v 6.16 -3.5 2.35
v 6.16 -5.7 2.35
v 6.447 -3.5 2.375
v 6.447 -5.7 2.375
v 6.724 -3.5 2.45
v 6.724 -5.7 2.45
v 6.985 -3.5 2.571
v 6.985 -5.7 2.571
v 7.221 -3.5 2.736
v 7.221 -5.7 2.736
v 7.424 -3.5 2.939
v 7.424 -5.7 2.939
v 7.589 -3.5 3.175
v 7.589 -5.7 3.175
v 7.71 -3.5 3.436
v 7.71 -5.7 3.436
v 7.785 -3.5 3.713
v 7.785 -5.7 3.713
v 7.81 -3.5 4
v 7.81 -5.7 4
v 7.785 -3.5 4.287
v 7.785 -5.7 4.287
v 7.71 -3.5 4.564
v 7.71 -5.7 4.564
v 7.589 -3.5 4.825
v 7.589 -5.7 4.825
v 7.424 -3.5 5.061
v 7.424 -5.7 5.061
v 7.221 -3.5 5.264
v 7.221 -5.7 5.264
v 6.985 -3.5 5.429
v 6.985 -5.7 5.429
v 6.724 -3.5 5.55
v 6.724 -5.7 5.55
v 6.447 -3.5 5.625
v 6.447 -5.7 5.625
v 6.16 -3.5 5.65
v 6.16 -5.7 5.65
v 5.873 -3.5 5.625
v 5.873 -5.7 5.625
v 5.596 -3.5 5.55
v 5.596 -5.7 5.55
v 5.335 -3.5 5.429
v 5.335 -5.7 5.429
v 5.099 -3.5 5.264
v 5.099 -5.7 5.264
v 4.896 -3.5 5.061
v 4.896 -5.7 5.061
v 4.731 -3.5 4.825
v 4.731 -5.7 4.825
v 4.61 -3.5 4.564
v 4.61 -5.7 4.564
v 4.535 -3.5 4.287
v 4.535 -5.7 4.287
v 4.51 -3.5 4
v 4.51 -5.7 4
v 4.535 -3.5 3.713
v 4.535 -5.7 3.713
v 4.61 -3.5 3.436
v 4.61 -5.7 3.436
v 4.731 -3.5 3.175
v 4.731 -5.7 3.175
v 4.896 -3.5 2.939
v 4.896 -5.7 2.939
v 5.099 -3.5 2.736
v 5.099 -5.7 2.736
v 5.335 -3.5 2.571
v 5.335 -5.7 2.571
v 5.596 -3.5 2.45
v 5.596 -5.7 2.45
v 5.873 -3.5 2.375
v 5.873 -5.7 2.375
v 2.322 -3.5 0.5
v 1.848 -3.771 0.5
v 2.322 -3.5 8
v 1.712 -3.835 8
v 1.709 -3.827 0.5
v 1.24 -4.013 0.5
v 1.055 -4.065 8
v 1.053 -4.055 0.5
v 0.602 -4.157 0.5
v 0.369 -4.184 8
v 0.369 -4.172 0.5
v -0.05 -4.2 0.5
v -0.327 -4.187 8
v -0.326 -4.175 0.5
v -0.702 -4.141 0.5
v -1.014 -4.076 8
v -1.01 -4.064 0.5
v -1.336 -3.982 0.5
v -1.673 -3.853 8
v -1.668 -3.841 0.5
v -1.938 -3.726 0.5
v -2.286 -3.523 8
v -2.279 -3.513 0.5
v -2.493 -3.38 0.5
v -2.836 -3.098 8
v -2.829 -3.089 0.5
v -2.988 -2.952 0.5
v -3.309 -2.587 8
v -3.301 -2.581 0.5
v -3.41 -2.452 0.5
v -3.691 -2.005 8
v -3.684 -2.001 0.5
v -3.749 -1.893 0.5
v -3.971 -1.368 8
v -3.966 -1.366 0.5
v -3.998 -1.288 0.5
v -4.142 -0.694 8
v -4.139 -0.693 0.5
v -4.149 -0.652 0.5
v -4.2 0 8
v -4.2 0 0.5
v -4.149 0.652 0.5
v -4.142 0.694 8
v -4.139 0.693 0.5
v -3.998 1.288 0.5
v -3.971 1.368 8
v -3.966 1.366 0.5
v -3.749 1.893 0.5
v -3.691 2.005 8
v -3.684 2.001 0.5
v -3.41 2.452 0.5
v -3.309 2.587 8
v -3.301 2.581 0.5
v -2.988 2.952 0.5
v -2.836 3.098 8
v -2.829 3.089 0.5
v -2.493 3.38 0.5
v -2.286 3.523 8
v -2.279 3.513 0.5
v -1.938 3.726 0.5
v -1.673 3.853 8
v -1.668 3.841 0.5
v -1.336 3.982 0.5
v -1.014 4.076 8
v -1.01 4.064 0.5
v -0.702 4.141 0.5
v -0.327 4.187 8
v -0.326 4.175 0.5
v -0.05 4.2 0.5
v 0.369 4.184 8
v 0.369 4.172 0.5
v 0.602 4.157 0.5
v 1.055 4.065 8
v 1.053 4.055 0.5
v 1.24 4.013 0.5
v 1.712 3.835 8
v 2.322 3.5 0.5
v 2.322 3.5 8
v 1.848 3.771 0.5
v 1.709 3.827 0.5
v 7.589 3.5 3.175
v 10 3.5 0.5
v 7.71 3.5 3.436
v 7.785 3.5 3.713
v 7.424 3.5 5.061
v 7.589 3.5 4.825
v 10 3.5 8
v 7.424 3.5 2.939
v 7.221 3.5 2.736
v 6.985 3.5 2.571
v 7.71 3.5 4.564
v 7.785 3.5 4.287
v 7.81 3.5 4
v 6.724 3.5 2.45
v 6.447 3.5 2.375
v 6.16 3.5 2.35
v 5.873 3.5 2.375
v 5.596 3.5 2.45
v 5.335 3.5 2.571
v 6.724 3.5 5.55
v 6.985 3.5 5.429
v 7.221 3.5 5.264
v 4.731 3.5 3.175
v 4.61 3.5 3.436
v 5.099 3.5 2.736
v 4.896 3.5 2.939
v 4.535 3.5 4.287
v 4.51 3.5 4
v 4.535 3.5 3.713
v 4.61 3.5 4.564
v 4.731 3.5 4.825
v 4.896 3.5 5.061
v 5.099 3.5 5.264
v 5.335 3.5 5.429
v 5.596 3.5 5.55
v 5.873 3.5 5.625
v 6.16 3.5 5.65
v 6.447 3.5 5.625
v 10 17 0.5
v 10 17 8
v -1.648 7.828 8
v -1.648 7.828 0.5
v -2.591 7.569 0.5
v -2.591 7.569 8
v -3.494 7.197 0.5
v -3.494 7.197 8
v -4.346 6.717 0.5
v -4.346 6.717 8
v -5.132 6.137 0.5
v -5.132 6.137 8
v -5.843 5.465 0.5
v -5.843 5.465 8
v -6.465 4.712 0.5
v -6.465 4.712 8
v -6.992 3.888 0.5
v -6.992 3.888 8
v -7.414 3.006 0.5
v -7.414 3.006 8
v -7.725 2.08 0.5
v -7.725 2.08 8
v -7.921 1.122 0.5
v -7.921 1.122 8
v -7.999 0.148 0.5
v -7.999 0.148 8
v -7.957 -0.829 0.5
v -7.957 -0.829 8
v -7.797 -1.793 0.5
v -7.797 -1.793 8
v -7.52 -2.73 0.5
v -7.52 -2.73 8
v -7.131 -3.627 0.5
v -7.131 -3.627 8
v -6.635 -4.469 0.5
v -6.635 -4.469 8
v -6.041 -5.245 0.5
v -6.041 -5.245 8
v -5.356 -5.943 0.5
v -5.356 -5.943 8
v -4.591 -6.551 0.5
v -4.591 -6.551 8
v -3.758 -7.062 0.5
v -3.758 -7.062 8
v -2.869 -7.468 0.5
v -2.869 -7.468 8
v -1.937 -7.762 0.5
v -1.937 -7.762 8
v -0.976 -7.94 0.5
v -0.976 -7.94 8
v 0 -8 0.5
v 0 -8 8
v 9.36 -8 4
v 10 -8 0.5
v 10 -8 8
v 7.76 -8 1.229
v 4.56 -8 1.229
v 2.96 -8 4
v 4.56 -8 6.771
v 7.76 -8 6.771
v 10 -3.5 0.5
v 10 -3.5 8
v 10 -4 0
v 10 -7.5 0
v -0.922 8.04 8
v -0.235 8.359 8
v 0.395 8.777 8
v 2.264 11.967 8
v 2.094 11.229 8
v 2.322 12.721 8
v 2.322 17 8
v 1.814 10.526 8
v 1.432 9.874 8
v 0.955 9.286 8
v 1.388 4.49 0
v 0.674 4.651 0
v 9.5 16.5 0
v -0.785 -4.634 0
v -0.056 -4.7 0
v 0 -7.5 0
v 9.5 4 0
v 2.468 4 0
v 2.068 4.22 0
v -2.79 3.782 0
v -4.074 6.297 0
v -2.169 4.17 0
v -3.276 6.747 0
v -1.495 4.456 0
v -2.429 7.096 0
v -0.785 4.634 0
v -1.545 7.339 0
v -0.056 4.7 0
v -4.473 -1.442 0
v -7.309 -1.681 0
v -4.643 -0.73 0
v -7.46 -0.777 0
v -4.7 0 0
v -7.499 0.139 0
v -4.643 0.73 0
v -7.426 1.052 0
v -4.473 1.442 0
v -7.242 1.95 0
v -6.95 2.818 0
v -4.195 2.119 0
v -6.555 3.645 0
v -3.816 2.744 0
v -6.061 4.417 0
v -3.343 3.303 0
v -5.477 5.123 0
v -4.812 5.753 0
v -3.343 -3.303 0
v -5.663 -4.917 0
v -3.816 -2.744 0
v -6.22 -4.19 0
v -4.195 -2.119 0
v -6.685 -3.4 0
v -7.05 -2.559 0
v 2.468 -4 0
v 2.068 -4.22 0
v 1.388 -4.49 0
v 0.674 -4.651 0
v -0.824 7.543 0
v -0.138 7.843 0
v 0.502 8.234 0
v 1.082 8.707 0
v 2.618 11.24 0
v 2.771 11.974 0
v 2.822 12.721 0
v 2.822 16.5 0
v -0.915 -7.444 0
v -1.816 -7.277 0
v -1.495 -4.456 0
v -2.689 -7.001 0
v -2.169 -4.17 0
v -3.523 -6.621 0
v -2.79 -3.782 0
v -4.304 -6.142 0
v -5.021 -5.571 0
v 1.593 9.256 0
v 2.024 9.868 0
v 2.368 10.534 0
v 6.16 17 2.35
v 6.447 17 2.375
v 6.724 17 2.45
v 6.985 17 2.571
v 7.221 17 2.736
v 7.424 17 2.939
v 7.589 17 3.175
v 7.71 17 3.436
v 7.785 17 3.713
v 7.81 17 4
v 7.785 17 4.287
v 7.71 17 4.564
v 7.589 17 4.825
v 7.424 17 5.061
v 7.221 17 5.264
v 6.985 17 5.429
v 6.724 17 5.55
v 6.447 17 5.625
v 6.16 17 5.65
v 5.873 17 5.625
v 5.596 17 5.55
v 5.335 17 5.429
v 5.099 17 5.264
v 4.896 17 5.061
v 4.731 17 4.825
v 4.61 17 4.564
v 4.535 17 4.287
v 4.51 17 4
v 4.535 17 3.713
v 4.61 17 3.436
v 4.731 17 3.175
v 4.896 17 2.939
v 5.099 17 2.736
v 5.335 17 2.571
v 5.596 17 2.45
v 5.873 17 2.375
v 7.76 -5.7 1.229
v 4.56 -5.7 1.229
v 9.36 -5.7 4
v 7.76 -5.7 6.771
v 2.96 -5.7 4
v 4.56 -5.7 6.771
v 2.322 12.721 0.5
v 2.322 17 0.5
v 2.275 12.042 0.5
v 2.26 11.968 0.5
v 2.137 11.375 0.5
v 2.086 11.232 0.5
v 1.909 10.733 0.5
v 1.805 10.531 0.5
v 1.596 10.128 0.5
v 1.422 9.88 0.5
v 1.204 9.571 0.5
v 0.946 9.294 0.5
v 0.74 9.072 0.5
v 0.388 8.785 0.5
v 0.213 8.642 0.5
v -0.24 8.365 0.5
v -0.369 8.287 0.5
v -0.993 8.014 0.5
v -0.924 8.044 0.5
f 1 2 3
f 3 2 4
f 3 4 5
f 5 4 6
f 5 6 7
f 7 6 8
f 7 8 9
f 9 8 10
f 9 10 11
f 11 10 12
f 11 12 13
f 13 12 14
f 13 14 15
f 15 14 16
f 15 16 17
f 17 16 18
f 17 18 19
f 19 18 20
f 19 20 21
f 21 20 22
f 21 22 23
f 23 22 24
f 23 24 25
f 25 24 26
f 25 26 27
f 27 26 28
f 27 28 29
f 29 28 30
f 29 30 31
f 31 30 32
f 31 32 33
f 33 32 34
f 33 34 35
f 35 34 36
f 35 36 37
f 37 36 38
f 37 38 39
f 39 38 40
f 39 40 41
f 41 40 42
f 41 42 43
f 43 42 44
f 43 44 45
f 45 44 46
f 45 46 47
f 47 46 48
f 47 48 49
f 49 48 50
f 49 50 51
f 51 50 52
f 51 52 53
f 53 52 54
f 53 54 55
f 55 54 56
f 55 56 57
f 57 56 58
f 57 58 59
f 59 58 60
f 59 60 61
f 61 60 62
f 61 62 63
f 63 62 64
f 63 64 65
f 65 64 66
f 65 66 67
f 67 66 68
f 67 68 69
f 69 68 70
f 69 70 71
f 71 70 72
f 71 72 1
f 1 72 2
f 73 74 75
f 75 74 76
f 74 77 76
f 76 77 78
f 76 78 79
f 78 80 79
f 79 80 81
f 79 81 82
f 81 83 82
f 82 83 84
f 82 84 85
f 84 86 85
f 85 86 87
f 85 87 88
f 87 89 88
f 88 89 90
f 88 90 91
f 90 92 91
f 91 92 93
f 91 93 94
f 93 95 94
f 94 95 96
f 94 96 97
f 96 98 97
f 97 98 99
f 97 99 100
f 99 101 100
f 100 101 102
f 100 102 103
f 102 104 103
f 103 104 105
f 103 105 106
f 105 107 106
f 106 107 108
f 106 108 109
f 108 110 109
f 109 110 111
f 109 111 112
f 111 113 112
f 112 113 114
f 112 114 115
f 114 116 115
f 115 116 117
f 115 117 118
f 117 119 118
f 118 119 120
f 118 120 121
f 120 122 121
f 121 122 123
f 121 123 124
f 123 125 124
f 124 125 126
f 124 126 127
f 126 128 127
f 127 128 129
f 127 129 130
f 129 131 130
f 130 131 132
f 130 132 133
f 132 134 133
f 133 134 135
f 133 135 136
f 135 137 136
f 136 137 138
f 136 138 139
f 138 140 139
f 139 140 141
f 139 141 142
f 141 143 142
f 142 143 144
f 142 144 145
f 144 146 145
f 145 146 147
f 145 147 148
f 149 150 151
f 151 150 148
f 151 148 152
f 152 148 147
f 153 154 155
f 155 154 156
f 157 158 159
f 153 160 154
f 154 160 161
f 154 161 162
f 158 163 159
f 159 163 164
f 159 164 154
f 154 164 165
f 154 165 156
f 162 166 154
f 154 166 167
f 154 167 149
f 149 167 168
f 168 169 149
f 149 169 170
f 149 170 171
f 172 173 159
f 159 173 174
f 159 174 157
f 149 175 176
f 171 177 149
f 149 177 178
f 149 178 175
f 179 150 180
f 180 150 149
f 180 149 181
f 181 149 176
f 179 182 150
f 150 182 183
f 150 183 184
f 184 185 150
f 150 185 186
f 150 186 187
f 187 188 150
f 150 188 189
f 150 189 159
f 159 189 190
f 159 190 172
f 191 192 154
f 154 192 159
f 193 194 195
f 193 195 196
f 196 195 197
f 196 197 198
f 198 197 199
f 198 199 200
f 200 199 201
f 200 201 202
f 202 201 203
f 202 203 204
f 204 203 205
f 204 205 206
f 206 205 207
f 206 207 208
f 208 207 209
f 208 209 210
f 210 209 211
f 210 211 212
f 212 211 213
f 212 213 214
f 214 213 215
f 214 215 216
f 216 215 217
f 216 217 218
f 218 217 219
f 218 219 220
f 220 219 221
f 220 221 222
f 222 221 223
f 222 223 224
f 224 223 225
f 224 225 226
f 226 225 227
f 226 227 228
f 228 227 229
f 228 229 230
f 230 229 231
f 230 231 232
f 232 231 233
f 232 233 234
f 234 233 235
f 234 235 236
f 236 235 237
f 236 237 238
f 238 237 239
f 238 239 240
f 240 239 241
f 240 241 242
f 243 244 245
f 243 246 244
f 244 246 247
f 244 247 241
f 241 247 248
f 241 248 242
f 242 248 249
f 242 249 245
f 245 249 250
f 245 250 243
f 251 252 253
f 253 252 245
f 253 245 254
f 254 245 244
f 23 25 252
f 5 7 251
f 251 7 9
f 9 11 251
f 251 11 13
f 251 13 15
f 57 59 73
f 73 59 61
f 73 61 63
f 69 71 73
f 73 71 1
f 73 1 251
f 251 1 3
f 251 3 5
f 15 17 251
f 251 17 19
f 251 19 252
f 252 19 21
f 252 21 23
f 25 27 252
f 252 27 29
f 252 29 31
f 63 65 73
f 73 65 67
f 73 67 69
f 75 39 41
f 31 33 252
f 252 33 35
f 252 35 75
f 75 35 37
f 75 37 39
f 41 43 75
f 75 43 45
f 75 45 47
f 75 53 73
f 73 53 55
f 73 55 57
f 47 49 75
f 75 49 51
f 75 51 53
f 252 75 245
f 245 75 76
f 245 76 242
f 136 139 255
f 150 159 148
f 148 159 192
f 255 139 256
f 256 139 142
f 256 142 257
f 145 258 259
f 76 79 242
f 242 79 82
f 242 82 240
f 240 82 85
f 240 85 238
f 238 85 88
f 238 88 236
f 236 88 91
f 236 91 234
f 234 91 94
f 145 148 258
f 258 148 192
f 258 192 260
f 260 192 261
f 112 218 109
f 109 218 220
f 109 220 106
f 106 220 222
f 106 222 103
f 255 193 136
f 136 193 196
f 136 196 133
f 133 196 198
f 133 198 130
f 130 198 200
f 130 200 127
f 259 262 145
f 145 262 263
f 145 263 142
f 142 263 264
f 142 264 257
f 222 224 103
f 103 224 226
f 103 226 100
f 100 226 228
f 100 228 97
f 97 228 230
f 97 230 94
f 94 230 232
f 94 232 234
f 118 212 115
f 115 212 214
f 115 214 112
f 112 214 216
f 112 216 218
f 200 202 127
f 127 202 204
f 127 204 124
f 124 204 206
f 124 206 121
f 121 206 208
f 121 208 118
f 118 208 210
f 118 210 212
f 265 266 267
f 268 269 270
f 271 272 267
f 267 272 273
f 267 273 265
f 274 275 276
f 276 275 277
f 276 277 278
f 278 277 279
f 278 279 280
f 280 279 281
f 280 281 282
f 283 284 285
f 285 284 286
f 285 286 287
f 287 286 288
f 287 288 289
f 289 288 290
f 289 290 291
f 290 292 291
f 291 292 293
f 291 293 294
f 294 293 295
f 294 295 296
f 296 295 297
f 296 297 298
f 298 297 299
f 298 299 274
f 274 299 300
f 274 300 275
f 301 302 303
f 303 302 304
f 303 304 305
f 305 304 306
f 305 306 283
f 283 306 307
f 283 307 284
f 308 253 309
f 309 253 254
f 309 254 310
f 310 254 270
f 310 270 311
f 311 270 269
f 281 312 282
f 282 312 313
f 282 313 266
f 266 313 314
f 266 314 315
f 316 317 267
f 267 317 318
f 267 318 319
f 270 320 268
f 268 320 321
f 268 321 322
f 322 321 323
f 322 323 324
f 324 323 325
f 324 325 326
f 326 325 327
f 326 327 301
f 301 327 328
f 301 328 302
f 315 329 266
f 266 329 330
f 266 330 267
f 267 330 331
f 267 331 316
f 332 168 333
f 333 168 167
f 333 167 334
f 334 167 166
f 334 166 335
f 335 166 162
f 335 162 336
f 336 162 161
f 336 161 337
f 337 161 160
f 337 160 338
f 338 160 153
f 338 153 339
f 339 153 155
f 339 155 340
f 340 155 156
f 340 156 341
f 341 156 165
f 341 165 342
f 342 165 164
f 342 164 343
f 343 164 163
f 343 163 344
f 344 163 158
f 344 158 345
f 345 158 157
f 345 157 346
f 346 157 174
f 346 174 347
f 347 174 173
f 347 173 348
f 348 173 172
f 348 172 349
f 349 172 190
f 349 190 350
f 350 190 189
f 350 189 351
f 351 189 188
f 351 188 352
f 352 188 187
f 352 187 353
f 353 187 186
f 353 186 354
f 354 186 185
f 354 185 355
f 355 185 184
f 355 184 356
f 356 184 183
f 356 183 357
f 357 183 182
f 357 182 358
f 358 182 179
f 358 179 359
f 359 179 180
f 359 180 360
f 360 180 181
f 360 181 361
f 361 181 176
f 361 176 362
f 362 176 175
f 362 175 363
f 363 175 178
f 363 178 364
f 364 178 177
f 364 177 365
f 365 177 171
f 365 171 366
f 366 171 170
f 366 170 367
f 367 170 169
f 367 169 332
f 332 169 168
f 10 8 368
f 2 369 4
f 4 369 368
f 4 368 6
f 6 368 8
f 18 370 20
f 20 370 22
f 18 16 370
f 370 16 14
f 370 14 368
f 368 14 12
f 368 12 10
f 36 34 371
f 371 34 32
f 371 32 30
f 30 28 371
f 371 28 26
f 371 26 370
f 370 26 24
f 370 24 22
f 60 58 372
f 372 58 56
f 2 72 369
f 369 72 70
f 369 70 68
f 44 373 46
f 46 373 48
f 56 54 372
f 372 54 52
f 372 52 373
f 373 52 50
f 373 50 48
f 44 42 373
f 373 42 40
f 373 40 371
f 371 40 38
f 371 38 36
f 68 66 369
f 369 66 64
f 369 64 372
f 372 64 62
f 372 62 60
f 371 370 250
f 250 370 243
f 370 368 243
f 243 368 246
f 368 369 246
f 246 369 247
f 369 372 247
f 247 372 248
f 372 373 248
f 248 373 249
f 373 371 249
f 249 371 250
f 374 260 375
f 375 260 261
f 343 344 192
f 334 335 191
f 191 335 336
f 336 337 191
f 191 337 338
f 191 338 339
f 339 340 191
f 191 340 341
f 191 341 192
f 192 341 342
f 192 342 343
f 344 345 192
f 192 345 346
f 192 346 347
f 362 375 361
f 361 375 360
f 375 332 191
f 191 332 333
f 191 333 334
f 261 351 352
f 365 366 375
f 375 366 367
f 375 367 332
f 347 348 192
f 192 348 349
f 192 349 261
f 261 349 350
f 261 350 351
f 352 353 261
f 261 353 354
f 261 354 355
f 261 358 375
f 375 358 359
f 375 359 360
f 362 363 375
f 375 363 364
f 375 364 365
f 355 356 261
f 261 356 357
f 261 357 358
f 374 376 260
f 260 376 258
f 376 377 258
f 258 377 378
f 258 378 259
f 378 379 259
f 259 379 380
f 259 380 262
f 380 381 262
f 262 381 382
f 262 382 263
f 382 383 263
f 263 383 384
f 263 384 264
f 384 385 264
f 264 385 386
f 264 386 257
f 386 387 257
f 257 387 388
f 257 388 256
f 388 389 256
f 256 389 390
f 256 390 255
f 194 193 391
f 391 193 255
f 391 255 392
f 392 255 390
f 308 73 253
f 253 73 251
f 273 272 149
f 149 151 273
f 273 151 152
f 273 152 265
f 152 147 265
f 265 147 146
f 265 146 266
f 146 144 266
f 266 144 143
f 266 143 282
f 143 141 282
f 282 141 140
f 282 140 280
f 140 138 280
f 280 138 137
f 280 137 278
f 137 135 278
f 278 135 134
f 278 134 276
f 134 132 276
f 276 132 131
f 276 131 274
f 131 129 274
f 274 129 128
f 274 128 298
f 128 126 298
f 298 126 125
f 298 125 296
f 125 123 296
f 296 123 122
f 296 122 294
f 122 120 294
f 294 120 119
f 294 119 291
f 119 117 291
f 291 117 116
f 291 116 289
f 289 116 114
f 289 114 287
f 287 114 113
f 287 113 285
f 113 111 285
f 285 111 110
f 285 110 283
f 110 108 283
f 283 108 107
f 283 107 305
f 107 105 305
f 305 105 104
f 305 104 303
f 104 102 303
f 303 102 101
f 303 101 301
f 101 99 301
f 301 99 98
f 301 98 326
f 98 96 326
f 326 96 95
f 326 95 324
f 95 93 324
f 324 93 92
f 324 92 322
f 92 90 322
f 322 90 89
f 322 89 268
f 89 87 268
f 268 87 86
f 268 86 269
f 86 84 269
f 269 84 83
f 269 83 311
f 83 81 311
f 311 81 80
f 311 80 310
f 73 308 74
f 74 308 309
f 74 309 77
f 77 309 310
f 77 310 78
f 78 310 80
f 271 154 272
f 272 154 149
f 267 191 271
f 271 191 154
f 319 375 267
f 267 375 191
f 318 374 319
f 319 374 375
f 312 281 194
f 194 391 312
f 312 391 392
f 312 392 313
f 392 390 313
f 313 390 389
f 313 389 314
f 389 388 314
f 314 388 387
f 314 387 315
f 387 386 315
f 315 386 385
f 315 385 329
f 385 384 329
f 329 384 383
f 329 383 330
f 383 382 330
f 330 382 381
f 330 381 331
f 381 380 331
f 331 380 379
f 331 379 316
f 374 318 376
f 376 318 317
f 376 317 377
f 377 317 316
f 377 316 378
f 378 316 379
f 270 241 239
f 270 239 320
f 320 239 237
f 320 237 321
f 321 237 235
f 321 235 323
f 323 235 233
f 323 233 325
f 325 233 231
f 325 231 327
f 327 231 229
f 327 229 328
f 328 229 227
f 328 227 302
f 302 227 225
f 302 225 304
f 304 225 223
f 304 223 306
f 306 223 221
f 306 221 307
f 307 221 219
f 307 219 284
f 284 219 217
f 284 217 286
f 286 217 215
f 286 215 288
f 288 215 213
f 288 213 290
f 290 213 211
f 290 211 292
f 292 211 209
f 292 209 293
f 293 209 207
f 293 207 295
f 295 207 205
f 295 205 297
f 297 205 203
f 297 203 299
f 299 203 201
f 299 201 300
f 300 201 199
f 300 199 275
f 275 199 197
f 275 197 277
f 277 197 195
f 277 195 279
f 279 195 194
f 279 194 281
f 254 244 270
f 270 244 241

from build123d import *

# Parameters (mm, degrees)
BOSS_EXTRUDE1_DEPTH = 8
SKETCH2_R           = 1.65
CUT_EXTRUDE1_DEPTH  = 21.493901532
CUT_EXTRUDE2_DEPTH  = 2.3
SKETCH4_W           = 7.678362647
SKETCH4_H           = 8
SKETCH4_R           = 1.65
BOSS_EXTRUDE2_DEPTH = 13.5
FILLET1_R           = 5
CHAMFER1_SIZE       = 0.5


with BuildPart() as part:
    # Sketch1 → Boss-Extrude1 (new body)
    with BuildSketch(Plane.XY):
        with BuildLine():
            Line((0, 8), (10, 8))
            Line((10, 8), (10, 3.5))
            Line((10, 3.5), (2.321637353, 3.5))
            ThreePointArc((2.321637353, 3.5), (-4.2, 0), (2.321637353, -3.5))
            Line((2.321637353, -3.5), (10, -3.5))
            Line((10, -3.5), (10, -8))
            Line((10, -8), (0, -8))
            ThreePointArc((0, -8), (-8, 0), (0, 8))
        make_face()
    extrude(amount=BOSS_EXTRUDE1_DEPTH)

    # Sketch2 → Cut-Extrude1 (cut, through all)
    with BuildSketch(Plane.XZ.offset(8)):
        with Locations(Location((6.16, 4, 0), (0, 0, 270))):
            Circle(SKETCH2_R)
    extrude(amount=-CUT_EXTRUDE1_DEPTH, mode=Mode.SUBTRACT)

    # Sketch3 → Cut-Extrude2 (cut)
    with BuildSketch(Plane.XZ.offset(8)):
        Polygon((7.76, 6.771281292), (4.56, 6.771281292), (2.96, 4), (4.56, 1.228718708), (7.76, 1.228718708), (9.36, 4), align=None)
    extrude(amount=-CUT_EXTRUDE2_DEPTH, mode=Mode.SUBTRACT)

    # Sketch4 → Boss-Extrude2 (add)
    with BuildSketch(Plane.XZ.offset(-3.5)):
        with Locations((6.160818676, 4)):
            Rectangle(SKETCH4_W, SKETCH4_H)
        with Locations(Location((6.16, 4, 0), (0, 0, 270))):
            Circle(SKETCH4_R, mode=Mode.SUBTRACT)
    extrude(amount=-BOSS_EXTRUDE2_DEPTH)

    # Fillet1
    fillet1_edges = [part.edges().sort_by_distance(p)[0] for p in [
        (2.321637353, 8, 4),
    ]]
    fillet(fillet1_edges, radius=FILLET1_R)

    # Chamfer1
    chamfer1_edges = [part.edges().sort_by_distance(p)[0] for p in [
        (5, -8, 0),
        (-7.956976548, -0.828567563, 0),
        (1.204335989, 9.570758083, 0),
        (2.321637353, 14.860549771, 0),
        (6.160818677, 17, 0),
        (10, 10.25, 0),
        (6.160818677, 3.5, 0),
        (6.160818677, -3.5, 0),
        (-4.2, 0, 0),
    ]]
    chamfer(chamfer1_edges, length=CHAMFER1_SIZE)


solid = part.part
